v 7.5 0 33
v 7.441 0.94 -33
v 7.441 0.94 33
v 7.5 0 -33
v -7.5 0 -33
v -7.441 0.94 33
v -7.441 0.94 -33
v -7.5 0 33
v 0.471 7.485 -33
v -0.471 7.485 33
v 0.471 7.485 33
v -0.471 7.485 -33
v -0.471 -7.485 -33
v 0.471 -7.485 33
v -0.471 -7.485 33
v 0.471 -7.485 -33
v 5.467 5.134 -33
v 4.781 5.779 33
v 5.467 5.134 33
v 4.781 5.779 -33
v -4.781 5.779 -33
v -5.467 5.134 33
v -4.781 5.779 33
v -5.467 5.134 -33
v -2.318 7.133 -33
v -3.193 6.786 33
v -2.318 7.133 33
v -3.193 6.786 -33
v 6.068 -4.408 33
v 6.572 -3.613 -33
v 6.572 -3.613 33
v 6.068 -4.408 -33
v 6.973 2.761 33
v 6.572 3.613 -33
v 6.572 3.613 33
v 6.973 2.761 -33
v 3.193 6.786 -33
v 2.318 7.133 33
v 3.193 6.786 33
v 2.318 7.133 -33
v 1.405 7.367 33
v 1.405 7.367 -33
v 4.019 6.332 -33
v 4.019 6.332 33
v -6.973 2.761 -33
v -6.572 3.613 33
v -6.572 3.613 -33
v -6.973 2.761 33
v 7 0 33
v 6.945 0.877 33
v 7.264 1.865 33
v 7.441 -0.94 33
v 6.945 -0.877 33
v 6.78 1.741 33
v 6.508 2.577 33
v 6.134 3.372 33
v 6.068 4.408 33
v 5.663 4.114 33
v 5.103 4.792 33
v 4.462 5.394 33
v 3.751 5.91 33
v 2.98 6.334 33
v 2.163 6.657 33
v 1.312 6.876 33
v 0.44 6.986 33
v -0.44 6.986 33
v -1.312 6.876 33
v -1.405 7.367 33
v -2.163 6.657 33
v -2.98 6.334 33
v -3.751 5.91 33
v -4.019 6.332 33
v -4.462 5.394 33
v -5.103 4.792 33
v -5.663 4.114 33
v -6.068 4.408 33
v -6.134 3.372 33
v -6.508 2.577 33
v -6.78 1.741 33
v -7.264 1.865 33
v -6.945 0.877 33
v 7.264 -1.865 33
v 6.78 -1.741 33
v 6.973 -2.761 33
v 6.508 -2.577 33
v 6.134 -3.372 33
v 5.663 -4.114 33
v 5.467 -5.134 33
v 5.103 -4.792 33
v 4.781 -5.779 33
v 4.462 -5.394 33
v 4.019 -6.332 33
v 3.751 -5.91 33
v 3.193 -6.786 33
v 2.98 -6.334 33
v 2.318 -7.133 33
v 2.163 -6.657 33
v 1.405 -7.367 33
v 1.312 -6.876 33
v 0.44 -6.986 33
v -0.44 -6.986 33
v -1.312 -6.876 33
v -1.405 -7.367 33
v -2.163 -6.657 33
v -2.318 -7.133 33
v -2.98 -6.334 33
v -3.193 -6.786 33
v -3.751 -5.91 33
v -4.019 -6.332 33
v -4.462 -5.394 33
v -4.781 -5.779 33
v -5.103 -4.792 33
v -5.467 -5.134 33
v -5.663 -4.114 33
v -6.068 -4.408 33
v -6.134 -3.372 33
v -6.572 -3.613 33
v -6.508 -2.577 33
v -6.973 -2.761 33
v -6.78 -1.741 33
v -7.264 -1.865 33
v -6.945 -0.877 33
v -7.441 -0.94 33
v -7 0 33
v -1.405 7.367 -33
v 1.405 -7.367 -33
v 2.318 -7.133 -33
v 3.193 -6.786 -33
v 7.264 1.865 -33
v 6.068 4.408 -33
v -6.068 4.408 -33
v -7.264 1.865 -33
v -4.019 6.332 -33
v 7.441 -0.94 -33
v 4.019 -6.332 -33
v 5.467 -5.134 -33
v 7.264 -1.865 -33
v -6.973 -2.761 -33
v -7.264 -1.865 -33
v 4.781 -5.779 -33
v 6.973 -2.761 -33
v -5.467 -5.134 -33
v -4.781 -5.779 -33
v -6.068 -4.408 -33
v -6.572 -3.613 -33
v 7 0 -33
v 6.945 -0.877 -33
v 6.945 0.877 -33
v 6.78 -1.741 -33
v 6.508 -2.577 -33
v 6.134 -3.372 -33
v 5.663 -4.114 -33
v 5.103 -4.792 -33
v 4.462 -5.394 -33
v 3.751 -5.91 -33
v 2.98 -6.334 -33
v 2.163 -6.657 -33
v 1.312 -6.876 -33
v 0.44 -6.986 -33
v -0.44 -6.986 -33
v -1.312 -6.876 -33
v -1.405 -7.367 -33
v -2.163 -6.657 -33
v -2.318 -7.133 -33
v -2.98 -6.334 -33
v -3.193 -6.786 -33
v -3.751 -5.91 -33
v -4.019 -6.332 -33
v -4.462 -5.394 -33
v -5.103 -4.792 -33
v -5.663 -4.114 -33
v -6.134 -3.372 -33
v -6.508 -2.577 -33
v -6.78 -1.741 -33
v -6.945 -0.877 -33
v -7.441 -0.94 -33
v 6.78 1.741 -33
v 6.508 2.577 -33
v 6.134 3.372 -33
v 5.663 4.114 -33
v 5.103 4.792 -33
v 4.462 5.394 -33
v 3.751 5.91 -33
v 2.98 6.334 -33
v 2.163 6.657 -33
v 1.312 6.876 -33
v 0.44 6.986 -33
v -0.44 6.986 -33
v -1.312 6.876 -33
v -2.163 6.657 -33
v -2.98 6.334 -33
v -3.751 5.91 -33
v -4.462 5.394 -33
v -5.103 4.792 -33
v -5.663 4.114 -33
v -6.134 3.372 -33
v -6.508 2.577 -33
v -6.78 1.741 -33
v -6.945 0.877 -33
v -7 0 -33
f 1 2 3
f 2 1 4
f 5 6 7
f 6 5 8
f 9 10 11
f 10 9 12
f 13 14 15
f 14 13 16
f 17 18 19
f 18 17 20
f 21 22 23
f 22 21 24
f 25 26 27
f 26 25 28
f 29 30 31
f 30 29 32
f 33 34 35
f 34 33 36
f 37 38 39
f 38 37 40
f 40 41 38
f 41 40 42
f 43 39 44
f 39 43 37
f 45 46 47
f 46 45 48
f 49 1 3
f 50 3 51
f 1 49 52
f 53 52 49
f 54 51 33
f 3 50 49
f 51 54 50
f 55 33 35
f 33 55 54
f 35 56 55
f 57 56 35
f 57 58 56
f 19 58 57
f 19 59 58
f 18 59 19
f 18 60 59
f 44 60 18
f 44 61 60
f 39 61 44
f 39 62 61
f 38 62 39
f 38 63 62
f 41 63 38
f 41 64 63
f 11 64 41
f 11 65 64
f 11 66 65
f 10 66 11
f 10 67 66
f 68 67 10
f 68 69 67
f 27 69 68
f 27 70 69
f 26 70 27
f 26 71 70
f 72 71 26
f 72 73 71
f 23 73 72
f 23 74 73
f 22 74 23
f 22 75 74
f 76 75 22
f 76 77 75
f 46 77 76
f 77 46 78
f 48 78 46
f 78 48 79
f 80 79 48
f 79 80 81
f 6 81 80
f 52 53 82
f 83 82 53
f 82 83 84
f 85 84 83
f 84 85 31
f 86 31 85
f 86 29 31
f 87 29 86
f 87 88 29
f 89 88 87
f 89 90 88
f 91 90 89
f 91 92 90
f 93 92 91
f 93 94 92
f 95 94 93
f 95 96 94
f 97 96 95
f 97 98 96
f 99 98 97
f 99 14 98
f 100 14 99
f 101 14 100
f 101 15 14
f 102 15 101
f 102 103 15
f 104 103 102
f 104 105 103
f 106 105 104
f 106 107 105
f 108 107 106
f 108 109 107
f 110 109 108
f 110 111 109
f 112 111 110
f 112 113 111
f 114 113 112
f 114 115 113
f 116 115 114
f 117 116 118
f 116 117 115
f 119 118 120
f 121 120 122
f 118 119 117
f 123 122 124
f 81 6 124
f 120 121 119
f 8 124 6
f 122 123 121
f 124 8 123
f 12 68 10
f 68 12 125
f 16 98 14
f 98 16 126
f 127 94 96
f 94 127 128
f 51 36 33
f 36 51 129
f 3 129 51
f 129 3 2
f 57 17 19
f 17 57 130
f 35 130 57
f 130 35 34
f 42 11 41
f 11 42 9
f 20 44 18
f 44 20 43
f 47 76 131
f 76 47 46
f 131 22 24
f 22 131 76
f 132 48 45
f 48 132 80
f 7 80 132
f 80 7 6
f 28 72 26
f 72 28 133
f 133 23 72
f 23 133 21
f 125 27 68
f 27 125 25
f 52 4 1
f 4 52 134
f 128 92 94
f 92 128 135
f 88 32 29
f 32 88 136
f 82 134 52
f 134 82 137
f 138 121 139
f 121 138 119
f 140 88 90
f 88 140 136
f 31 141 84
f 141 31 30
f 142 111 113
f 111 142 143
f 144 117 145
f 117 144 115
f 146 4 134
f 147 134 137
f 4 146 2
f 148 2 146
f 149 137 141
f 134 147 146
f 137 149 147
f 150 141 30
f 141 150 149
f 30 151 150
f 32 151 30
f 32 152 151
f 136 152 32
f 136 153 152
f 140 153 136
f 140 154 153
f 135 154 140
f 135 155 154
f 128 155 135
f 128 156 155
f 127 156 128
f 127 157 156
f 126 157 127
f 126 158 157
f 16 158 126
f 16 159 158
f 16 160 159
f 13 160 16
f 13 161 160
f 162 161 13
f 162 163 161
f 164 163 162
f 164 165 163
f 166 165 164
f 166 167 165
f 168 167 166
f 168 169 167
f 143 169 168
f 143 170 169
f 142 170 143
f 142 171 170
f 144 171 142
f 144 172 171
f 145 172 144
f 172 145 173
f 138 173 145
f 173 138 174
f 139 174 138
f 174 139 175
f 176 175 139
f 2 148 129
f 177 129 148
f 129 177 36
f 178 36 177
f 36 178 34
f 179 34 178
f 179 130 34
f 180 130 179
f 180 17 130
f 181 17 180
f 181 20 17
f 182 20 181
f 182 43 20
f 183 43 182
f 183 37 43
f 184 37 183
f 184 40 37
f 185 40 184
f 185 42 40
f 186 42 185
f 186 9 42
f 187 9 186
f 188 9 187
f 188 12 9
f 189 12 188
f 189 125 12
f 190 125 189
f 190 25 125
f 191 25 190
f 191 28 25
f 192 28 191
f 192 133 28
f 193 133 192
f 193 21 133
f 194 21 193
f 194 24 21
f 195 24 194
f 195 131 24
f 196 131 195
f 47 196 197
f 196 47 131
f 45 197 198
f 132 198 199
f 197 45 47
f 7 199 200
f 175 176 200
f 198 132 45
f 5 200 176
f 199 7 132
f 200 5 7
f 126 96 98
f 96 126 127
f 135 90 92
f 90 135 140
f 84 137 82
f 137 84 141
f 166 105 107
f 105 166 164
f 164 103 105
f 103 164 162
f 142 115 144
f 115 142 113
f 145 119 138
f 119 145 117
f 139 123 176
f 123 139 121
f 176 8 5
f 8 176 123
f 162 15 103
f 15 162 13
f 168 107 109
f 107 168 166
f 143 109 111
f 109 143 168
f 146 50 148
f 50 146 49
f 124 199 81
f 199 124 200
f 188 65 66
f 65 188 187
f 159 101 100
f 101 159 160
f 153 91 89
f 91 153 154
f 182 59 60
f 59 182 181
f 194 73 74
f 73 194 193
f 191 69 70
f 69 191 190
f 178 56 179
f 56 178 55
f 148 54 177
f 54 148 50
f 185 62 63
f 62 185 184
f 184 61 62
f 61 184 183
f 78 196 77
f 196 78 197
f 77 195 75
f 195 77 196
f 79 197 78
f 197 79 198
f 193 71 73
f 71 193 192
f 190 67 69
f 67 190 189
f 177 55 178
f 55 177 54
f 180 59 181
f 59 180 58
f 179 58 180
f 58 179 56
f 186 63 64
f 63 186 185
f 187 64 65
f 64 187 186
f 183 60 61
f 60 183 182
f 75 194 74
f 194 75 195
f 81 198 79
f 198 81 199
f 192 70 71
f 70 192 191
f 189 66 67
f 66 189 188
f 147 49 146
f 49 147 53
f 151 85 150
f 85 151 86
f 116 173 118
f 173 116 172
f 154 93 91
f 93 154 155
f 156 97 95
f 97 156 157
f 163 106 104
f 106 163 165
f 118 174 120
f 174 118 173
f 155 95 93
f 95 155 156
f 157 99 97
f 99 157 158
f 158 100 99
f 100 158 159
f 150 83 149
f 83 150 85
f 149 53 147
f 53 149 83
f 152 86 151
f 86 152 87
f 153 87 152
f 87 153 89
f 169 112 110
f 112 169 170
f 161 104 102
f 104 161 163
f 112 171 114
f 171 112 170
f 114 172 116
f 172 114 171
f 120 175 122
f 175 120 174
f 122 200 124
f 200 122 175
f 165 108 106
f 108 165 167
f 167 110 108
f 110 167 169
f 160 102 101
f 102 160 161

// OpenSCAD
$fn = 50;


difference() {
	union() {
		translate(v = [0, 0, -33.0000000000]) {
			cylinder(h = 66, r = 7.5000000000);
		}
	}
	union() {
		translate(v = [0, 0, -100.0000000000]) {
			cylinder(h = 200, r = 7);
		}
	}
}
